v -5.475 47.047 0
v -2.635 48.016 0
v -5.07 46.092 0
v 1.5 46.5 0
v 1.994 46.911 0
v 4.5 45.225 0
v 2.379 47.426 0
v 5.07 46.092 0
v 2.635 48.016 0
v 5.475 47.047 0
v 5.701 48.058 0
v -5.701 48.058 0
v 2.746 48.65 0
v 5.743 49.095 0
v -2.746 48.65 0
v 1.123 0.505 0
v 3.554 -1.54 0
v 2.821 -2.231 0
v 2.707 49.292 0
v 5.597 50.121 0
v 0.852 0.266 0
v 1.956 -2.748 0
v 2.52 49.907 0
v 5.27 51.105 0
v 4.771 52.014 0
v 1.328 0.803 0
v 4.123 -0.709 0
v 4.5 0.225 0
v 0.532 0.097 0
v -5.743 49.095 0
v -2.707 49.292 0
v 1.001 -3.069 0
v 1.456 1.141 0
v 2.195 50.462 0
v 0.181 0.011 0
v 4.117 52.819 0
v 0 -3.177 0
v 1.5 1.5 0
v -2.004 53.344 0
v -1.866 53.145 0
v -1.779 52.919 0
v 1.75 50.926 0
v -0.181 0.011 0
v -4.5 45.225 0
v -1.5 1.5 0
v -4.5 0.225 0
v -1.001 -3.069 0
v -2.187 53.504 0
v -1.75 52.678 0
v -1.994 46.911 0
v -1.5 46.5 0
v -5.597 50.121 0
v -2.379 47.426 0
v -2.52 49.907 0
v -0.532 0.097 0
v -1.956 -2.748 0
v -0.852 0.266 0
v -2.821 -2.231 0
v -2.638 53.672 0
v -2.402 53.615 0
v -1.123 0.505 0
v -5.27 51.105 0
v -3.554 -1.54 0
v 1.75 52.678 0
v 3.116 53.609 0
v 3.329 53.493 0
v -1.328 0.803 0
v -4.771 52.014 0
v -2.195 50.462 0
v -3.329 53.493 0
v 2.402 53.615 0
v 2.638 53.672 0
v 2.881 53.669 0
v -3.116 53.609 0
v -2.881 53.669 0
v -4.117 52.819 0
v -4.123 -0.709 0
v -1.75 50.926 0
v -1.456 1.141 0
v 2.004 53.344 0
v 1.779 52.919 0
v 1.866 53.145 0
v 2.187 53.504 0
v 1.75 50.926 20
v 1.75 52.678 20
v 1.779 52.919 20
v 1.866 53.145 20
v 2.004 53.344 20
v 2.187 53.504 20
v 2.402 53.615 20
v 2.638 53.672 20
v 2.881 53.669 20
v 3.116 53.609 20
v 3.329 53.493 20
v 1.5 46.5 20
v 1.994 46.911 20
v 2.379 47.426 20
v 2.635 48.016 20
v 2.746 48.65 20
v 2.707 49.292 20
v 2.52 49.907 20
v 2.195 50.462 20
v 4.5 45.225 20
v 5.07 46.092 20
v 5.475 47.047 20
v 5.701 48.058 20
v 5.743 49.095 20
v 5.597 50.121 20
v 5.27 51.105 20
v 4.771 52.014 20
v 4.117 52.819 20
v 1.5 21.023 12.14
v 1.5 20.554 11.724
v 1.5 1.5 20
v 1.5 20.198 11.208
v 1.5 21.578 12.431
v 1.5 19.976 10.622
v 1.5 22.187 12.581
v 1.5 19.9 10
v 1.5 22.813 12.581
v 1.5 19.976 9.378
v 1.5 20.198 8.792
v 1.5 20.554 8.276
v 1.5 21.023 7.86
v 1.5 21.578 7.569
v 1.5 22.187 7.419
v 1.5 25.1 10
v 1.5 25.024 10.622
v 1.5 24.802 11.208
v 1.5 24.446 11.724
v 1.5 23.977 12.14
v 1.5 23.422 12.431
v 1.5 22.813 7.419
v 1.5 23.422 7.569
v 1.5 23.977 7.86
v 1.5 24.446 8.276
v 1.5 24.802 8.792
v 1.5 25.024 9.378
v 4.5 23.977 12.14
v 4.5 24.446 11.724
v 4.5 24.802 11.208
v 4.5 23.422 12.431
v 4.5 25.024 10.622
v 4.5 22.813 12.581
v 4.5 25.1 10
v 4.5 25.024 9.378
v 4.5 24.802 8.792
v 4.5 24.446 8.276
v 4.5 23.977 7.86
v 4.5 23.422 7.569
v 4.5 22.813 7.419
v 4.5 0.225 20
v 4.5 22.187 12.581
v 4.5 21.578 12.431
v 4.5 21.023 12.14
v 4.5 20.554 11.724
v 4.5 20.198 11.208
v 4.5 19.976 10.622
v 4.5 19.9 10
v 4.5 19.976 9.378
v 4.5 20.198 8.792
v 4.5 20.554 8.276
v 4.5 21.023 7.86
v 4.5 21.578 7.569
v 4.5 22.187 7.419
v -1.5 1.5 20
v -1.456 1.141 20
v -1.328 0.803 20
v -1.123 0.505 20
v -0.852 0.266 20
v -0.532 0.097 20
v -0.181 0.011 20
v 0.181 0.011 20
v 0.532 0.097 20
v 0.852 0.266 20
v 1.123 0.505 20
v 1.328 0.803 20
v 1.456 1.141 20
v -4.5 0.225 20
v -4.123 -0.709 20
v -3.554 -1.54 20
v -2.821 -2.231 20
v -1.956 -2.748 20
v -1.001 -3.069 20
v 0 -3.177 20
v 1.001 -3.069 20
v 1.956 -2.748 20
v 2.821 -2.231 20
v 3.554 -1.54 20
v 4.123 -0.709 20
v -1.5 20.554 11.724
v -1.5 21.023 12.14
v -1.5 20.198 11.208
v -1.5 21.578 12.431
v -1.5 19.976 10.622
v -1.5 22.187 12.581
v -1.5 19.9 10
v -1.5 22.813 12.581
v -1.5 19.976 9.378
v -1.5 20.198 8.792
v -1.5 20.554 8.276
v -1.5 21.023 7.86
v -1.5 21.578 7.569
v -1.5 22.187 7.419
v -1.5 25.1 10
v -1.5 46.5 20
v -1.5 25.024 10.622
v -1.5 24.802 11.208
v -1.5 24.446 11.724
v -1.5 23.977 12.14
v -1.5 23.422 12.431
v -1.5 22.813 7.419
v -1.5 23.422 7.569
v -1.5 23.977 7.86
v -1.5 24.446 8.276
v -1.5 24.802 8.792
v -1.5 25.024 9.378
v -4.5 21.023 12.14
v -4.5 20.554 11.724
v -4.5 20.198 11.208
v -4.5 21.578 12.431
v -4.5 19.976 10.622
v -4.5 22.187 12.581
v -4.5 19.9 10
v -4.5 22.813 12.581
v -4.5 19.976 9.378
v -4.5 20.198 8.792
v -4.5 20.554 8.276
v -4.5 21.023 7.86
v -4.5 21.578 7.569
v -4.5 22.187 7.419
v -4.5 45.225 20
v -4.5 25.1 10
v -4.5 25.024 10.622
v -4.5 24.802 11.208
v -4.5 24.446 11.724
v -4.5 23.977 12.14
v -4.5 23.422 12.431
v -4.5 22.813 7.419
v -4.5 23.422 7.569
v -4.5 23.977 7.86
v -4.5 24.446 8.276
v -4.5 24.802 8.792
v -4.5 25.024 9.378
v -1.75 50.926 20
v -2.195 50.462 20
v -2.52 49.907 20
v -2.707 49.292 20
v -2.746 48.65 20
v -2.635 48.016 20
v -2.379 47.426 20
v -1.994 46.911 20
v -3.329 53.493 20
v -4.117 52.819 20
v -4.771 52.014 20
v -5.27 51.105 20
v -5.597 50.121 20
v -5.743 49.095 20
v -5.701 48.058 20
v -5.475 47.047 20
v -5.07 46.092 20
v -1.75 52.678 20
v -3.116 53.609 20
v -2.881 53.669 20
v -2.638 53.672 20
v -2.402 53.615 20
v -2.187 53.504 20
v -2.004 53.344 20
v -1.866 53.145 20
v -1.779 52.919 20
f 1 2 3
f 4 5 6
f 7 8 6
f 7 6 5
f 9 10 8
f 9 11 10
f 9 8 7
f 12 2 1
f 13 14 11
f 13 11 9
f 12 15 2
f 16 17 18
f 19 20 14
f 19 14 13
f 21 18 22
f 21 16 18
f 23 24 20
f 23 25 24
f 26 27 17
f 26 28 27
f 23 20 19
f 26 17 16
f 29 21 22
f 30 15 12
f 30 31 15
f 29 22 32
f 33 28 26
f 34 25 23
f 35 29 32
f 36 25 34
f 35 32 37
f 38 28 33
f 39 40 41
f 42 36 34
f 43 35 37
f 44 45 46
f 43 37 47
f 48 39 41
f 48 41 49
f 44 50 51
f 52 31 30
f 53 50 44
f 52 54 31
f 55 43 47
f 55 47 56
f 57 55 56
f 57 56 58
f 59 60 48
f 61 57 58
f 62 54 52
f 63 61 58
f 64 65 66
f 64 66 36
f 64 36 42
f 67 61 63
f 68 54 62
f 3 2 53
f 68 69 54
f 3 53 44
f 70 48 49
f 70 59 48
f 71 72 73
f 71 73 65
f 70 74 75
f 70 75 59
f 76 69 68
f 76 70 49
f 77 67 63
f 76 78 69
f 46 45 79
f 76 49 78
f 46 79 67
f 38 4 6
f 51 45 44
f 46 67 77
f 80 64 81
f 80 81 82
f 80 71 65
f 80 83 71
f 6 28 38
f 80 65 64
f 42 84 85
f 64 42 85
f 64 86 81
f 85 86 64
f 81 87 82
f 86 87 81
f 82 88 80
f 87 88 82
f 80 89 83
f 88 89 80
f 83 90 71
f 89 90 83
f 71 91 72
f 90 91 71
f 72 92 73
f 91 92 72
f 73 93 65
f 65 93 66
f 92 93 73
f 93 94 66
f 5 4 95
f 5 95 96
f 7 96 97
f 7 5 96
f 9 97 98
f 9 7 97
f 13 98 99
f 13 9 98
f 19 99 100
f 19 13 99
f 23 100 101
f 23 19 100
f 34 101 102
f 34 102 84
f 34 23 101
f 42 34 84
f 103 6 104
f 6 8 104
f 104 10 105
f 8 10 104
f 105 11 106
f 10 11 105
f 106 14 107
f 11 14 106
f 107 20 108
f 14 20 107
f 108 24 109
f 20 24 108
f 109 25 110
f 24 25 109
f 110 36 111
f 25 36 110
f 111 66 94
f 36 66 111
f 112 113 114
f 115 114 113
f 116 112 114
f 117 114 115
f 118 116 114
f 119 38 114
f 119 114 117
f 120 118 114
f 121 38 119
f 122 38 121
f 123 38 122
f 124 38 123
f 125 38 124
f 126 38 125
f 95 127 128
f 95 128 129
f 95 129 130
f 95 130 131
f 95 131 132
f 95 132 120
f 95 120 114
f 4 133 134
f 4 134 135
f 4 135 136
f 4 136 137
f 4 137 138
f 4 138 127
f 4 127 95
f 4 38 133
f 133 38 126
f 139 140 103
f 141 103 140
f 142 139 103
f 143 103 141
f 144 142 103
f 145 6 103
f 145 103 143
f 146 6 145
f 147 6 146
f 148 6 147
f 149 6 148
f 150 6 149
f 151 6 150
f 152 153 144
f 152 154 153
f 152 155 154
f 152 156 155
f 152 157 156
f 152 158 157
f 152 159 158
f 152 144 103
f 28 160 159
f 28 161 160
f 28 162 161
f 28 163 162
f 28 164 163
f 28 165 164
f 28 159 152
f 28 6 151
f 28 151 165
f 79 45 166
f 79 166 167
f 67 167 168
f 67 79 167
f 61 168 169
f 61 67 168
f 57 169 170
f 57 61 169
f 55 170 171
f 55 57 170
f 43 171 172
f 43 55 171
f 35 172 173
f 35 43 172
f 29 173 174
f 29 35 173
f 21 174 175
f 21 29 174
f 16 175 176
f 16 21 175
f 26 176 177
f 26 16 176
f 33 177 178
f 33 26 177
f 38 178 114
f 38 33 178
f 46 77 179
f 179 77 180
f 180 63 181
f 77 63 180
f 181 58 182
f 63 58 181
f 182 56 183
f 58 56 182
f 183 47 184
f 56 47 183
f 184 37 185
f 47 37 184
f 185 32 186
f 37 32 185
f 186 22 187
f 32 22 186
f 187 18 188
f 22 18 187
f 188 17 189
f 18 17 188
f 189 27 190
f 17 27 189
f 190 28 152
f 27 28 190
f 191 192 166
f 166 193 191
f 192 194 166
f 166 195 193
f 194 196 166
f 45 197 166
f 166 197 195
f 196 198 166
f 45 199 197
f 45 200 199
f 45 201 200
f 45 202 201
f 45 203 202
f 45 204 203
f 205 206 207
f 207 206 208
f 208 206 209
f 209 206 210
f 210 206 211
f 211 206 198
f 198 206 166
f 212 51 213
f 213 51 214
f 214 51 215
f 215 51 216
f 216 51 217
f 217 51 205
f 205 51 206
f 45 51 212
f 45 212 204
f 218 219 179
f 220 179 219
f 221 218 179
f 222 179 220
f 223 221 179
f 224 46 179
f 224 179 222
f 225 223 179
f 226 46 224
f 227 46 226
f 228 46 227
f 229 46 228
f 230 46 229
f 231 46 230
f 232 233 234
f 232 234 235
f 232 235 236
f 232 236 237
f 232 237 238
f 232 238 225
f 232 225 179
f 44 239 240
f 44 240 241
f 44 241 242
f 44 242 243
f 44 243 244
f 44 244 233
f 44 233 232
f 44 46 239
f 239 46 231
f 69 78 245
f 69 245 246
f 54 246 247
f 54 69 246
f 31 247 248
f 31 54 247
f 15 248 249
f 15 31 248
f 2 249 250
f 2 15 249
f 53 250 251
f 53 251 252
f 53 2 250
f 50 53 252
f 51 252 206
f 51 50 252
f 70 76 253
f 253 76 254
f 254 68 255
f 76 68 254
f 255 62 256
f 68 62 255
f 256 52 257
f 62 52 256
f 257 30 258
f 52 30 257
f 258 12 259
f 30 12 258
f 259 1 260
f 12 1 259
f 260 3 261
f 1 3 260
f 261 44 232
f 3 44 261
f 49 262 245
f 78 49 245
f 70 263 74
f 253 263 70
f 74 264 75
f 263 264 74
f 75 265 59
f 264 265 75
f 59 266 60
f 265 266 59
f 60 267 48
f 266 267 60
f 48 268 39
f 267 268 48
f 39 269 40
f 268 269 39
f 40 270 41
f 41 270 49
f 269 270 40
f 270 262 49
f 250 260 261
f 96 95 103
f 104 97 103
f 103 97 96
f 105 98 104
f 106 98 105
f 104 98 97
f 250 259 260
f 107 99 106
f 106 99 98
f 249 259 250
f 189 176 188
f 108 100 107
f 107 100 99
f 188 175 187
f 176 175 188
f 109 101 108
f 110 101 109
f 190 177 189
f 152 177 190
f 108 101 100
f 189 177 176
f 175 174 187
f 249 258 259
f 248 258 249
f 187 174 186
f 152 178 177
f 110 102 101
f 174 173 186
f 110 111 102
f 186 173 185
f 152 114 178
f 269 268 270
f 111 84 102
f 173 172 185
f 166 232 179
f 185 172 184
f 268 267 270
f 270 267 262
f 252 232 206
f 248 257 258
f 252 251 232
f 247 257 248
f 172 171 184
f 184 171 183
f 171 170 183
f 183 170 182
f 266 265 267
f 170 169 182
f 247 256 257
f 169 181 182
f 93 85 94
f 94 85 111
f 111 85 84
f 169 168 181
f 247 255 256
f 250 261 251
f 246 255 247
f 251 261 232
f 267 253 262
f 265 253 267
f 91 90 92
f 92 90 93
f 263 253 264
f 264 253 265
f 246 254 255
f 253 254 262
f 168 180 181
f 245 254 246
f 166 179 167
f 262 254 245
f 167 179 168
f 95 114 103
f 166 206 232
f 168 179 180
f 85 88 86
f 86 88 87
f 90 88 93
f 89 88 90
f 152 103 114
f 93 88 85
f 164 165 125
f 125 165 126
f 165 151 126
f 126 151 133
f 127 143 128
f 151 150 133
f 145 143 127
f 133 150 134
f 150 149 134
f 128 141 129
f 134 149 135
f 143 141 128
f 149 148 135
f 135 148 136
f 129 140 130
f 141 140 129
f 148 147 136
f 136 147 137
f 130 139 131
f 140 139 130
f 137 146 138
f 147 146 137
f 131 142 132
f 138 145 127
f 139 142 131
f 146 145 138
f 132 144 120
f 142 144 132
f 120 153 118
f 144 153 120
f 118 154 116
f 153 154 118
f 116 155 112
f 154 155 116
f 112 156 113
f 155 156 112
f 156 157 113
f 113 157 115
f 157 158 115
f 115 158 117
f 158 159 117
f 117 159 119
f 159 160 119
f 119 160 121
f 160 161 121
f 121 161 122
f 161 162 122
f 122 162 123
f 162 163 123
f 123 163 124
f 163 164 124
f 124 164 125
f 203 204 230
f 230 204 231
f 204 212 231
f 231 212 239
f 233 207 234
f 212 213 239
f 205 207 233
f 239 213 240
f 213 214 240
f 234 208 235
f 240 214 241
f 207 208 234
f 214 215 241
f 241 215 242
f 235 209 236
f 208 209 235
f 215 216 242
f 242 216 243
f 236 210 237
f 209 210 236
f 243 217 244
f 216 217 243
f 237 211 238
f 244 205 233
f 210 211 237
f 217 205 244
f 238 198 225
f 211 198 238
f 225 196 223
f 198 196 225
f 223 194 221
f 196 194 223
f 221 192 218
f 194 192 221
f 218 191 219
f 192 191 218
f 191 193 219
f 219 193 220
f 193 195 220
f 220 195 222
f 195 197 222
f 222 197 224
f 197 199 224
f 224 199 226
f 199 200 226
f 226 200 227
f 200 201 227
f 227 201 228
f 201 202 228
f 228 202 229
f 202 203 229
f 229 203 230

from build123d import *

# Parameters (mm, degrees)
PAD_DEPTH    = 20
SKETCH001_R  = 2.6
POCKET_DEPTH = 10.251
FILLET_R     = 1


with BuildPart() as part:
    # Sketch → Pad (new body)
    with BuildSketch(Plane.XY):
        with BuildLine():
            ThreePointArc((-1.5, 1.5), (0, 0), (1.5, 1.5))
            Line((1.5, 1.5), (1.5, 46.5))
            ThreePointArc((1.5, 46.5), (2.745624, 48.649808), (1.75, 50.926206))
            Line((1.75, 50.926206), (1.75, 54.282112))
            ThreePointArc((4.5, 45.225431), (5.501953, 50.475517), (1.75, 54.282112))
            Line((4.5, 45.225431), (4.5, 0.225431))
            ThreePointArc((-4.5, 0.225431), (0, -3.177021), (4.5, 0.225431))
            Line((-4.5, 0.225431), (-4.5, 45.225431))
            ThreePointArc((-1.75, 54.282112), (-5.501953, 50.475517), (-4.5, 45.225431))
            Line((-1.75, 54.282112), (-1.75, 50.926206))
            ThreePointArc((-1.75, 50.926206), (-2.745624, 48.649808), (-1.5, 46.5))
            Line((-1.5, 1.5), (-1.5, 46.5))
        make_face()
    extrude(amount=PAD_DEPTH)

    # Sketch001 (on Face6 of Pad) → Pocket (cut, through all)
    with BuildSketch(Plane.YZ.offset(4.5)):
        with Locations((22.5, 10)):
            Circle(SKETCH001_R)
    extrude(amount=-POCKET_DEPTH, mode=Mode.SUBTRACT)

    # Fillet
    fillet_edges = [part.edges().sort_by_distance(p)[0] for p in [
        (-1.75, 54.282112, 10),
        (1.75, 54.282112, 10),
    ]]
    fillet(fillet_edges, radius=FILLET_R)


solid = part.part
